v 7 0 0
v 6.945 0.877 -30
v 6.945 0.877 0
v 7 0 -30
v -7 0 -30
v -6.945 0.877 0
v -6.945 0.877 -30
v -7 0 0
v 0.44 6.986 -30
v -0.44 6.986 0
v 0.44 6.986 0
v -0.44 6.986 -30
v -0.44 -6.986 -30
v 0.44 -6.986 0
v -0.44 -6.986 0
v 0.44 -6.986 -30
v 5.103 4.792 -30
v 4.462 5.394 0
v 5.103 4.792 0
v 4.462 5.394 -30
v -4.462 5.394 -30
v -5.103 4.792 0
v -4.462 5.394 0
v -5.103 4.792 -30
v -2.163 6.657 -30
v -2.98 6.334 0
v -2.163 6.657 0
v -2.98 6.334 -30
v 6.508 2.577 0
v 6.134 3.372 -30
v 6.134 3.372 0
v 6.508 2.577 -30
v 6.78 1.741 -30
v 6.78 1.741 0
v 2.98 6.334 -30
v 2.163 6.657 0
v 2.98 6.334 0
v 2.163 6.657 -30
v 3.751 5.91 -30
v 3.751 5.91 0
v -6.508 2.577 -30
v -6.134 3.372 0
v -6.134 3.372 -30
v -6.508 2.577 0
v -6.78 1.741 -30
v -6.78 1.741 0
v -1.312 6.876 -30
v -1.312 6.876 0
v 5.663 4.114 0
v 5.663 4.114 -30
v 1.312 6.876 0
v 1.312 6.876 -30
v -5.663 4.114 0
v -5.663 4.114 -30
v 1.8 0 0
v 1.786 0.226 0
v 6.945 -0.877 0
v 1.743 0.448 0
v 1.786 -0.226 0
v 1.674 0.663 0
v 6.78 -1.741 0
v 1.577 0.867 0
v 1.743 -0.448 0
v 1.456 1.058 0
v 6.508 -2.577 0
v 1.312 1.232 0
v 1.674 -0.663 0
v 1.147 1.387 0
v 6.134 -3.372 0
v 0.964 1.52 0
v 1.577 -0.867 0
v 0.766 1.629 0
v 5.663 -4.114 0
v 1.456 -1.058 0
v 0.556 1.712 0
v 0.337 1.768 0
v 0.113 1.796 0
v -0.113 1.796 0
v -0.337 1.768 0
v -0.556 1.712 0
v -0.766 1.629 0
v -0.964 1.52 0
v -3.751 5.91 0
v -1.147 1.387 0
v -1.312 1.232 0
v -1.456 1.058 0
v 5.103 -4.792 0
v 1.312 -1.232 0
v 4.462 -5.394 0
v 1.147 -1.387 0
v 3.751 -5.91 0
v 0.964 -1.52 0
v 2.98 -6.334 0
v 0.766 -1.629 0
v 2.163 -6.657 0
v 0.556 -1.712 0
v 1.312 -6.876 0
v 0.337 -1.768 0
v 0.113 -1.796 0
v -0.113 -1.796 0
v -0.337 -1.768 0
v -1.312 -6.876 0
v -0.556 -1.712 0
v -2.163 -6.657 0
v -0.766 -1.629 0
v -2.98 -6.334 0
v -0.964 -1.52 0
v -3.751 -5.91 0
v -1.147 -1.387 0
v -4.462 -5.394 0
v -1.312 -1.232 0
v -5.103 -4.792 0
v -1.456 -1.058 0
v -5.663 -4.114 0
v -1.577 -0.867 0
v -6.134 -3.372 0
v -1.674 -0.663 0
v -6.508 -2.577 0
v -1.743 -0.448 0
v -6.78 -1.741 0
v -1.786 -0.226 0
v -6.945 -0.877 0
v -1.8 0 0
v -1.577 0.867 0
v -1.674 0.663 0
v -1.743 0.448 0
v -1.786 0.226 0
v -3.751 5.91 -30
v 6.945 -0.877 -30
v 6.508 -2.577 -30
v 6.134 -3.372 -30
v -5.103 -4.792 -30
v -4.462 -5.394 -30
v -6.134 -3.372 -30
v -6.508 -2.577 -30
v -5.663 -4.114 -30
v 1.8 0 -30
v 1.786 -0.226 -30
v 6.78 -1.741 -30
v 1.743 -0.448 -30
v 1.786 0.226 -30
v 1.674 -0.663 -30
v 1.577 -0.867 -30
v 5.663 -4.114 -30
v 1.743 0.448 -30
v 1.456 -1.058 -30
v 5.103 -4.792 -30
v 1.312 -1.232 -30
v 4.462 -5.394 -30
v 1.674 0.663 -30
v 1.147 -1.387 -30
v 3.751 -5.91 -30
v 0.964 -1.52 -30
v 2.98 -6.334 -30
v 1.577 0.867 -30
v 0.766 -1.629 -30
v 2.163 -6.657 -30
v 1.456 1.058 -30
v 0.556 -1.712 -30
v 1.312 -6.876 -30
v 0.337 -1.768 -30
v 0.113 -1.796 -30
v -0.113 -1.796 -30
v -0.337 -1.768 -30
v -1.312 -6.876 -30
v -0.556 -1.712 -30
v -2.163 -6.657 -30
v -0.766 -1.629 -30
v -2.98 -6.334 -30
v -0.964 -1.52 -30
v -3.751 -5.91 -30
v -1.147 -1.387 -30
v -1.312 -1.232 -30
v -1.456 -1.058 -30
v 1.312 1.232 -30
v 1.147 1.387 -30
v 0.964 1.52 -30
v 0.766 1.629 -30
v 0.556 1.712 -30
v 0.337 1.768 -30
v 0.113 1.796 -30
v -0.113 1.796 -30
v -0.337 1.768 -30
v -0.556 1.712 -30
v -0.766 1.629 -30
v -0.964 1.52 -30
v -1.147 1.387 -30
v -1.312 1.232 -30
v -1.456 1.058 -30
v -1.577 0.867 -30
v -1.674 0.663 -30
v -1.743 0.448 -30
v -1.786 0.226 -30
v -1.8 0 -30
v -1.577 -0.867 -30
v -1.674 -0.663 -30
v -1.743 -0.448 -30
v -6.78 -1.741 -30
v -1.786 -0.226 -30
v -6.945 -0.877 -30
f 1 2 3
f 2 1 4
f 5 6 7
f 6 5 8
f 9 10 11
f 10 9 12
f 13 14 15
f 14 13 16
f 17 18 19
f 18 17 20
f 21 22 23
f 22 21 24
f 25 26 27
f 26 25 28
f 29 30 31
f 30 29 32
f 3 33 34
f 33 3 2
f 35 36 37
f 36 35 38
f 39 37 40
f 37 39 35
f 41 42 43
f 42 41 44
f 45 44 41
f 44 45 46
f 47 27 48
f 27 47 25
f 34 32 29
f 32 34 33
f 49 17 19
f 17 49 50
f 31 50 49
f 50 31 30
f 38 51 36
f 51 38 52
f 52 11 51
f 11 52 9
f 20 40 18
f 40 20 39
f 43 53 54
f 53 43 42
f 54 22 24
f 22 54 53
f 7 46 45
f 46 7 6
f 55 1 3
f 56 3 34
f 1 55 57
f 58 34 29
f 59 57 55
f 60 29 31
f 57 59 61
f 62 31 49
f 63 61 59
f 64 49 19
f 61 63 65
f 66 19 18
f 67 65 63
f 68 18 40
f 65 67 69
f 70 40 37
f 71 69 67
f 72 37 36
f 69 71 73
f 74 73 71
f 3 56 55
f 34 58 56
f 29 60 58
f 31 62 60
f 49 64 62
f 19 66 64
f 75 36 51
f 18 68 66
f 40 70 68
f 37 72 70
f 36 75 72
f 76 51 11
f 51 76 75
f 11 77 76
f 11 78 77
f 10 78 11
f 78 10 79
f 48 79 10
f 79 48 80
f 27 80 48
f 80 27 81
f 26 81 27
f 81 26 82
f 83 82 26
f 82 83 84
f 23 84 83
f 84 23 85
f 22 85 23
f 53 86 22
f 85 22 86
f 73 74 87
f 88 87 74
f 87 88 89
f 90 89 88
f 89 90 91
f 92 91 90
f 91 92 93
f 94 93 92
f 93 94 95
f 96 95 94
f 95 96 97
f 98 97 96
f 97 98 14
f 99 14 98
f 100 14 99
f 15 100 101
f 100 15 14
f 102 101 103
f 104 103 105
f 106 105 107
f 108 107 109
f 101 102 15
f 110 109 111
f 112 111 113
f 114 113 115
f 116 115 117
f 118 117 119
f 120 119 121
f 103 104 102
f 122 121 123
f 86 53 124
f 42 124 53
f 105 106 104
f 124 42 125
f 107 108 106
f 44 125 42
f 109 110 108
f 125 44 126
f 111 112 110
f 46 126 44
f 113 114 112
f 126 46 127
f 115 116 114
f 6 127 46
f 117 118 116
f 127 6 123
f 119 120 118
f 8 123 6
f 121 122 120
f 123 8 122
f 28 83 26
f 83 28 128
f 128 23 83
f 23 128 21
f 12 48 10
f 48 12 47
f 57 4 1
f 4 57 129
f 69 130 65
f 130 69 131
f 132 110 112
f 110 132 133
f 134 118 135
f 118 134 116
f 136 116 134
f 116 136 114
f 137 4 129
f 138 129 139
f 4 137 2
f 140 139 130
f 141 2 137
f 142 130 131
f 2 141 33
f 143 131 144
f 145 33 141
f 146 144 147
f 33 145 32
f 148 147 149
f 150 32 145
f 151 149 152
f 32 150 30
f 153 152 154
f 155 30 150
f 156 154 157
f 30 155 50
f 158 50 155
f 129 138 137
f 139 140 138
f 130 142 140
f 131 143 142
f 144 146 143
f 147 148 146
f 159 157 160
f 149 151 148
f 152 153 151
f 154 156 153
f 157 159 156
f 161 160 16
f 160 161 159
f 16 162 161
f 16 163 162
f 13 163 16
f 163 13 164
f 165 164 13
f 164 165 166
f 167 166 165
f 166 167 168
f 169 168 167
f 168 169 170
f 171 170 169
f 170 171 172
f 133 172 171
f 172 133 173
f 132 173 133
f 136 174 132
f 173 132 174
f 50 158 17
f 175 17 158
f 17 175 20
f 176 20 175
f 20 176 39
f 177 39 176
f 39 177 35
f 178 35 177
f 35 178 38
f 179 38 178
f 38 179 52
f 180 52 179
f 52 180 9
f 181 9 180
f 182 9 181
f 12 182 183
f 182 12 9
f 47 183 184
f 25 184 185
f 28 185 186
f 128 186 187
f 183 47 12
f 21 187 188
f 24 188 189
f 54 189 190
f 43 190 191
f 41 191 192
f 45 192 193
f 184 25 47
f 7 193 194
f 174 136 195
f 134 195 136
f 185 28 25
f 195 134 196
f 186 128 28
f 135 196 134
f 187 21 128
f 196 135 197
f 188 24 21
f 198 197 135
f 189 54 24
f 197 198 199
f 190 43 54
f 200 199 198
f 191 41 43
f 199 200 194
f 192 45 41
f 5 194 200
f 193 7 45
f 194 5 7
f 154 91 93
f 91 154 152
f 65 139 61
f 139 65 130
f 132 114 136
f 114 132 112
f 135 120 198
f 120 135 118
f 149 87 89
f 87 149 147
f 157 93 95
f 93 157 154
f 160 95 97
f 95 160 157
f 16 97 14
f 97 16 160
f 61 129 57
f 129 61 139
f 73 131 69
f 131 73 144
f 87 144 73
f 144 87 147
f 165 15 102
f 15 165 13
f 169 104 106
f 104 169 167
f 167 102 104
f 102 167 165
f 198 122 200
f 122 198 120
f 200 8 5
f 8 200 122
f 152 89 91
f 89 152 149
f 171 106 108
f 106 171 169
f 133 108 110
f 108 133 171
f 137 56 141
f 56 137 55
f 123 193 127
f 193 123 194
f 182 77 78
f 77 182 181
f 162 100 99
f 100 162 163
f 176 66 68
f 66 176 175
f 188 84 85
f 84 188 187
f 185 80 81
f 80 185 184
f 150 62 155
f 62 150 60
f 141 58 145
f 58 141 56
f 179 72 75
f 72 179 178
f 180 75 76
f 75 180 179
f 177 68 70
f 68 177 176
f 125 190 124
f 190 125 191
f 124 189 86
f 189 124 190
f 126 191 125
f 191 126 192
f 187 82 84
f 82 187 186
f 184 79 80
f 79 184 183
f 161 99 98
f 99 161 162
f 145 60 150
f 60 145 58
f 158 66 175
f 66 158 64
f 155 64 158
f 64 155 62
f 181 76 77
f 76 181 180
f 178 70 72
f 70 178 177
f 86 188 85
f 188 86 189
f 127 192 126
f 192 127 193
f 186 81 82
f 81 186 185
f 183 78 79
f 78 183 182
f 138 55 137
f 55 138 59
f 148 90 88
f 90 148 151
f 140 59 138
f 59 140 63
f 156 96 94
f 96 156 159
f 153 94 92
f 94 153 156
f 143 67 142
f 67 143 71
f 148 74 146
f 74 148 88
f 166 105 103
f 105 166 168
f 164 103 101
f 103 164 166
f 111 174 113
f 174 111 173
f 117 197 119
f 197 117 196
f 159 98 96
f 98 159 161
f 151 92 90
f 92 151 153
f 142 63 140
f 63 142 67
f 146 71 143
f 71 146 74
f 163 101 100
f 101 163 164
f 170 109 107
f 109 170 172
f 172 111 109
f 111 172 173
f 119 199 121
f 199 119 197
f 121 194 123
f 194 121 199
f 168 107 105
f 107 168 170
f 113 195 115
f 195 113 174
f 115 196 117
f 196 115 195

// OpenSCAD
$fn = 50;


difference() {
	union() {
		translate(v = [0, 0, -30.0000000000]) {
			cylinder(h = 30, r = 7.0000000000);
		}
		cylinder(h = 0, r = 13.0000000000);
	}
	union() {
		#translate(v = [0, 0, -30]) {
			cylinder(h = 30, r = 1.8000000000);
		}
	}
}
